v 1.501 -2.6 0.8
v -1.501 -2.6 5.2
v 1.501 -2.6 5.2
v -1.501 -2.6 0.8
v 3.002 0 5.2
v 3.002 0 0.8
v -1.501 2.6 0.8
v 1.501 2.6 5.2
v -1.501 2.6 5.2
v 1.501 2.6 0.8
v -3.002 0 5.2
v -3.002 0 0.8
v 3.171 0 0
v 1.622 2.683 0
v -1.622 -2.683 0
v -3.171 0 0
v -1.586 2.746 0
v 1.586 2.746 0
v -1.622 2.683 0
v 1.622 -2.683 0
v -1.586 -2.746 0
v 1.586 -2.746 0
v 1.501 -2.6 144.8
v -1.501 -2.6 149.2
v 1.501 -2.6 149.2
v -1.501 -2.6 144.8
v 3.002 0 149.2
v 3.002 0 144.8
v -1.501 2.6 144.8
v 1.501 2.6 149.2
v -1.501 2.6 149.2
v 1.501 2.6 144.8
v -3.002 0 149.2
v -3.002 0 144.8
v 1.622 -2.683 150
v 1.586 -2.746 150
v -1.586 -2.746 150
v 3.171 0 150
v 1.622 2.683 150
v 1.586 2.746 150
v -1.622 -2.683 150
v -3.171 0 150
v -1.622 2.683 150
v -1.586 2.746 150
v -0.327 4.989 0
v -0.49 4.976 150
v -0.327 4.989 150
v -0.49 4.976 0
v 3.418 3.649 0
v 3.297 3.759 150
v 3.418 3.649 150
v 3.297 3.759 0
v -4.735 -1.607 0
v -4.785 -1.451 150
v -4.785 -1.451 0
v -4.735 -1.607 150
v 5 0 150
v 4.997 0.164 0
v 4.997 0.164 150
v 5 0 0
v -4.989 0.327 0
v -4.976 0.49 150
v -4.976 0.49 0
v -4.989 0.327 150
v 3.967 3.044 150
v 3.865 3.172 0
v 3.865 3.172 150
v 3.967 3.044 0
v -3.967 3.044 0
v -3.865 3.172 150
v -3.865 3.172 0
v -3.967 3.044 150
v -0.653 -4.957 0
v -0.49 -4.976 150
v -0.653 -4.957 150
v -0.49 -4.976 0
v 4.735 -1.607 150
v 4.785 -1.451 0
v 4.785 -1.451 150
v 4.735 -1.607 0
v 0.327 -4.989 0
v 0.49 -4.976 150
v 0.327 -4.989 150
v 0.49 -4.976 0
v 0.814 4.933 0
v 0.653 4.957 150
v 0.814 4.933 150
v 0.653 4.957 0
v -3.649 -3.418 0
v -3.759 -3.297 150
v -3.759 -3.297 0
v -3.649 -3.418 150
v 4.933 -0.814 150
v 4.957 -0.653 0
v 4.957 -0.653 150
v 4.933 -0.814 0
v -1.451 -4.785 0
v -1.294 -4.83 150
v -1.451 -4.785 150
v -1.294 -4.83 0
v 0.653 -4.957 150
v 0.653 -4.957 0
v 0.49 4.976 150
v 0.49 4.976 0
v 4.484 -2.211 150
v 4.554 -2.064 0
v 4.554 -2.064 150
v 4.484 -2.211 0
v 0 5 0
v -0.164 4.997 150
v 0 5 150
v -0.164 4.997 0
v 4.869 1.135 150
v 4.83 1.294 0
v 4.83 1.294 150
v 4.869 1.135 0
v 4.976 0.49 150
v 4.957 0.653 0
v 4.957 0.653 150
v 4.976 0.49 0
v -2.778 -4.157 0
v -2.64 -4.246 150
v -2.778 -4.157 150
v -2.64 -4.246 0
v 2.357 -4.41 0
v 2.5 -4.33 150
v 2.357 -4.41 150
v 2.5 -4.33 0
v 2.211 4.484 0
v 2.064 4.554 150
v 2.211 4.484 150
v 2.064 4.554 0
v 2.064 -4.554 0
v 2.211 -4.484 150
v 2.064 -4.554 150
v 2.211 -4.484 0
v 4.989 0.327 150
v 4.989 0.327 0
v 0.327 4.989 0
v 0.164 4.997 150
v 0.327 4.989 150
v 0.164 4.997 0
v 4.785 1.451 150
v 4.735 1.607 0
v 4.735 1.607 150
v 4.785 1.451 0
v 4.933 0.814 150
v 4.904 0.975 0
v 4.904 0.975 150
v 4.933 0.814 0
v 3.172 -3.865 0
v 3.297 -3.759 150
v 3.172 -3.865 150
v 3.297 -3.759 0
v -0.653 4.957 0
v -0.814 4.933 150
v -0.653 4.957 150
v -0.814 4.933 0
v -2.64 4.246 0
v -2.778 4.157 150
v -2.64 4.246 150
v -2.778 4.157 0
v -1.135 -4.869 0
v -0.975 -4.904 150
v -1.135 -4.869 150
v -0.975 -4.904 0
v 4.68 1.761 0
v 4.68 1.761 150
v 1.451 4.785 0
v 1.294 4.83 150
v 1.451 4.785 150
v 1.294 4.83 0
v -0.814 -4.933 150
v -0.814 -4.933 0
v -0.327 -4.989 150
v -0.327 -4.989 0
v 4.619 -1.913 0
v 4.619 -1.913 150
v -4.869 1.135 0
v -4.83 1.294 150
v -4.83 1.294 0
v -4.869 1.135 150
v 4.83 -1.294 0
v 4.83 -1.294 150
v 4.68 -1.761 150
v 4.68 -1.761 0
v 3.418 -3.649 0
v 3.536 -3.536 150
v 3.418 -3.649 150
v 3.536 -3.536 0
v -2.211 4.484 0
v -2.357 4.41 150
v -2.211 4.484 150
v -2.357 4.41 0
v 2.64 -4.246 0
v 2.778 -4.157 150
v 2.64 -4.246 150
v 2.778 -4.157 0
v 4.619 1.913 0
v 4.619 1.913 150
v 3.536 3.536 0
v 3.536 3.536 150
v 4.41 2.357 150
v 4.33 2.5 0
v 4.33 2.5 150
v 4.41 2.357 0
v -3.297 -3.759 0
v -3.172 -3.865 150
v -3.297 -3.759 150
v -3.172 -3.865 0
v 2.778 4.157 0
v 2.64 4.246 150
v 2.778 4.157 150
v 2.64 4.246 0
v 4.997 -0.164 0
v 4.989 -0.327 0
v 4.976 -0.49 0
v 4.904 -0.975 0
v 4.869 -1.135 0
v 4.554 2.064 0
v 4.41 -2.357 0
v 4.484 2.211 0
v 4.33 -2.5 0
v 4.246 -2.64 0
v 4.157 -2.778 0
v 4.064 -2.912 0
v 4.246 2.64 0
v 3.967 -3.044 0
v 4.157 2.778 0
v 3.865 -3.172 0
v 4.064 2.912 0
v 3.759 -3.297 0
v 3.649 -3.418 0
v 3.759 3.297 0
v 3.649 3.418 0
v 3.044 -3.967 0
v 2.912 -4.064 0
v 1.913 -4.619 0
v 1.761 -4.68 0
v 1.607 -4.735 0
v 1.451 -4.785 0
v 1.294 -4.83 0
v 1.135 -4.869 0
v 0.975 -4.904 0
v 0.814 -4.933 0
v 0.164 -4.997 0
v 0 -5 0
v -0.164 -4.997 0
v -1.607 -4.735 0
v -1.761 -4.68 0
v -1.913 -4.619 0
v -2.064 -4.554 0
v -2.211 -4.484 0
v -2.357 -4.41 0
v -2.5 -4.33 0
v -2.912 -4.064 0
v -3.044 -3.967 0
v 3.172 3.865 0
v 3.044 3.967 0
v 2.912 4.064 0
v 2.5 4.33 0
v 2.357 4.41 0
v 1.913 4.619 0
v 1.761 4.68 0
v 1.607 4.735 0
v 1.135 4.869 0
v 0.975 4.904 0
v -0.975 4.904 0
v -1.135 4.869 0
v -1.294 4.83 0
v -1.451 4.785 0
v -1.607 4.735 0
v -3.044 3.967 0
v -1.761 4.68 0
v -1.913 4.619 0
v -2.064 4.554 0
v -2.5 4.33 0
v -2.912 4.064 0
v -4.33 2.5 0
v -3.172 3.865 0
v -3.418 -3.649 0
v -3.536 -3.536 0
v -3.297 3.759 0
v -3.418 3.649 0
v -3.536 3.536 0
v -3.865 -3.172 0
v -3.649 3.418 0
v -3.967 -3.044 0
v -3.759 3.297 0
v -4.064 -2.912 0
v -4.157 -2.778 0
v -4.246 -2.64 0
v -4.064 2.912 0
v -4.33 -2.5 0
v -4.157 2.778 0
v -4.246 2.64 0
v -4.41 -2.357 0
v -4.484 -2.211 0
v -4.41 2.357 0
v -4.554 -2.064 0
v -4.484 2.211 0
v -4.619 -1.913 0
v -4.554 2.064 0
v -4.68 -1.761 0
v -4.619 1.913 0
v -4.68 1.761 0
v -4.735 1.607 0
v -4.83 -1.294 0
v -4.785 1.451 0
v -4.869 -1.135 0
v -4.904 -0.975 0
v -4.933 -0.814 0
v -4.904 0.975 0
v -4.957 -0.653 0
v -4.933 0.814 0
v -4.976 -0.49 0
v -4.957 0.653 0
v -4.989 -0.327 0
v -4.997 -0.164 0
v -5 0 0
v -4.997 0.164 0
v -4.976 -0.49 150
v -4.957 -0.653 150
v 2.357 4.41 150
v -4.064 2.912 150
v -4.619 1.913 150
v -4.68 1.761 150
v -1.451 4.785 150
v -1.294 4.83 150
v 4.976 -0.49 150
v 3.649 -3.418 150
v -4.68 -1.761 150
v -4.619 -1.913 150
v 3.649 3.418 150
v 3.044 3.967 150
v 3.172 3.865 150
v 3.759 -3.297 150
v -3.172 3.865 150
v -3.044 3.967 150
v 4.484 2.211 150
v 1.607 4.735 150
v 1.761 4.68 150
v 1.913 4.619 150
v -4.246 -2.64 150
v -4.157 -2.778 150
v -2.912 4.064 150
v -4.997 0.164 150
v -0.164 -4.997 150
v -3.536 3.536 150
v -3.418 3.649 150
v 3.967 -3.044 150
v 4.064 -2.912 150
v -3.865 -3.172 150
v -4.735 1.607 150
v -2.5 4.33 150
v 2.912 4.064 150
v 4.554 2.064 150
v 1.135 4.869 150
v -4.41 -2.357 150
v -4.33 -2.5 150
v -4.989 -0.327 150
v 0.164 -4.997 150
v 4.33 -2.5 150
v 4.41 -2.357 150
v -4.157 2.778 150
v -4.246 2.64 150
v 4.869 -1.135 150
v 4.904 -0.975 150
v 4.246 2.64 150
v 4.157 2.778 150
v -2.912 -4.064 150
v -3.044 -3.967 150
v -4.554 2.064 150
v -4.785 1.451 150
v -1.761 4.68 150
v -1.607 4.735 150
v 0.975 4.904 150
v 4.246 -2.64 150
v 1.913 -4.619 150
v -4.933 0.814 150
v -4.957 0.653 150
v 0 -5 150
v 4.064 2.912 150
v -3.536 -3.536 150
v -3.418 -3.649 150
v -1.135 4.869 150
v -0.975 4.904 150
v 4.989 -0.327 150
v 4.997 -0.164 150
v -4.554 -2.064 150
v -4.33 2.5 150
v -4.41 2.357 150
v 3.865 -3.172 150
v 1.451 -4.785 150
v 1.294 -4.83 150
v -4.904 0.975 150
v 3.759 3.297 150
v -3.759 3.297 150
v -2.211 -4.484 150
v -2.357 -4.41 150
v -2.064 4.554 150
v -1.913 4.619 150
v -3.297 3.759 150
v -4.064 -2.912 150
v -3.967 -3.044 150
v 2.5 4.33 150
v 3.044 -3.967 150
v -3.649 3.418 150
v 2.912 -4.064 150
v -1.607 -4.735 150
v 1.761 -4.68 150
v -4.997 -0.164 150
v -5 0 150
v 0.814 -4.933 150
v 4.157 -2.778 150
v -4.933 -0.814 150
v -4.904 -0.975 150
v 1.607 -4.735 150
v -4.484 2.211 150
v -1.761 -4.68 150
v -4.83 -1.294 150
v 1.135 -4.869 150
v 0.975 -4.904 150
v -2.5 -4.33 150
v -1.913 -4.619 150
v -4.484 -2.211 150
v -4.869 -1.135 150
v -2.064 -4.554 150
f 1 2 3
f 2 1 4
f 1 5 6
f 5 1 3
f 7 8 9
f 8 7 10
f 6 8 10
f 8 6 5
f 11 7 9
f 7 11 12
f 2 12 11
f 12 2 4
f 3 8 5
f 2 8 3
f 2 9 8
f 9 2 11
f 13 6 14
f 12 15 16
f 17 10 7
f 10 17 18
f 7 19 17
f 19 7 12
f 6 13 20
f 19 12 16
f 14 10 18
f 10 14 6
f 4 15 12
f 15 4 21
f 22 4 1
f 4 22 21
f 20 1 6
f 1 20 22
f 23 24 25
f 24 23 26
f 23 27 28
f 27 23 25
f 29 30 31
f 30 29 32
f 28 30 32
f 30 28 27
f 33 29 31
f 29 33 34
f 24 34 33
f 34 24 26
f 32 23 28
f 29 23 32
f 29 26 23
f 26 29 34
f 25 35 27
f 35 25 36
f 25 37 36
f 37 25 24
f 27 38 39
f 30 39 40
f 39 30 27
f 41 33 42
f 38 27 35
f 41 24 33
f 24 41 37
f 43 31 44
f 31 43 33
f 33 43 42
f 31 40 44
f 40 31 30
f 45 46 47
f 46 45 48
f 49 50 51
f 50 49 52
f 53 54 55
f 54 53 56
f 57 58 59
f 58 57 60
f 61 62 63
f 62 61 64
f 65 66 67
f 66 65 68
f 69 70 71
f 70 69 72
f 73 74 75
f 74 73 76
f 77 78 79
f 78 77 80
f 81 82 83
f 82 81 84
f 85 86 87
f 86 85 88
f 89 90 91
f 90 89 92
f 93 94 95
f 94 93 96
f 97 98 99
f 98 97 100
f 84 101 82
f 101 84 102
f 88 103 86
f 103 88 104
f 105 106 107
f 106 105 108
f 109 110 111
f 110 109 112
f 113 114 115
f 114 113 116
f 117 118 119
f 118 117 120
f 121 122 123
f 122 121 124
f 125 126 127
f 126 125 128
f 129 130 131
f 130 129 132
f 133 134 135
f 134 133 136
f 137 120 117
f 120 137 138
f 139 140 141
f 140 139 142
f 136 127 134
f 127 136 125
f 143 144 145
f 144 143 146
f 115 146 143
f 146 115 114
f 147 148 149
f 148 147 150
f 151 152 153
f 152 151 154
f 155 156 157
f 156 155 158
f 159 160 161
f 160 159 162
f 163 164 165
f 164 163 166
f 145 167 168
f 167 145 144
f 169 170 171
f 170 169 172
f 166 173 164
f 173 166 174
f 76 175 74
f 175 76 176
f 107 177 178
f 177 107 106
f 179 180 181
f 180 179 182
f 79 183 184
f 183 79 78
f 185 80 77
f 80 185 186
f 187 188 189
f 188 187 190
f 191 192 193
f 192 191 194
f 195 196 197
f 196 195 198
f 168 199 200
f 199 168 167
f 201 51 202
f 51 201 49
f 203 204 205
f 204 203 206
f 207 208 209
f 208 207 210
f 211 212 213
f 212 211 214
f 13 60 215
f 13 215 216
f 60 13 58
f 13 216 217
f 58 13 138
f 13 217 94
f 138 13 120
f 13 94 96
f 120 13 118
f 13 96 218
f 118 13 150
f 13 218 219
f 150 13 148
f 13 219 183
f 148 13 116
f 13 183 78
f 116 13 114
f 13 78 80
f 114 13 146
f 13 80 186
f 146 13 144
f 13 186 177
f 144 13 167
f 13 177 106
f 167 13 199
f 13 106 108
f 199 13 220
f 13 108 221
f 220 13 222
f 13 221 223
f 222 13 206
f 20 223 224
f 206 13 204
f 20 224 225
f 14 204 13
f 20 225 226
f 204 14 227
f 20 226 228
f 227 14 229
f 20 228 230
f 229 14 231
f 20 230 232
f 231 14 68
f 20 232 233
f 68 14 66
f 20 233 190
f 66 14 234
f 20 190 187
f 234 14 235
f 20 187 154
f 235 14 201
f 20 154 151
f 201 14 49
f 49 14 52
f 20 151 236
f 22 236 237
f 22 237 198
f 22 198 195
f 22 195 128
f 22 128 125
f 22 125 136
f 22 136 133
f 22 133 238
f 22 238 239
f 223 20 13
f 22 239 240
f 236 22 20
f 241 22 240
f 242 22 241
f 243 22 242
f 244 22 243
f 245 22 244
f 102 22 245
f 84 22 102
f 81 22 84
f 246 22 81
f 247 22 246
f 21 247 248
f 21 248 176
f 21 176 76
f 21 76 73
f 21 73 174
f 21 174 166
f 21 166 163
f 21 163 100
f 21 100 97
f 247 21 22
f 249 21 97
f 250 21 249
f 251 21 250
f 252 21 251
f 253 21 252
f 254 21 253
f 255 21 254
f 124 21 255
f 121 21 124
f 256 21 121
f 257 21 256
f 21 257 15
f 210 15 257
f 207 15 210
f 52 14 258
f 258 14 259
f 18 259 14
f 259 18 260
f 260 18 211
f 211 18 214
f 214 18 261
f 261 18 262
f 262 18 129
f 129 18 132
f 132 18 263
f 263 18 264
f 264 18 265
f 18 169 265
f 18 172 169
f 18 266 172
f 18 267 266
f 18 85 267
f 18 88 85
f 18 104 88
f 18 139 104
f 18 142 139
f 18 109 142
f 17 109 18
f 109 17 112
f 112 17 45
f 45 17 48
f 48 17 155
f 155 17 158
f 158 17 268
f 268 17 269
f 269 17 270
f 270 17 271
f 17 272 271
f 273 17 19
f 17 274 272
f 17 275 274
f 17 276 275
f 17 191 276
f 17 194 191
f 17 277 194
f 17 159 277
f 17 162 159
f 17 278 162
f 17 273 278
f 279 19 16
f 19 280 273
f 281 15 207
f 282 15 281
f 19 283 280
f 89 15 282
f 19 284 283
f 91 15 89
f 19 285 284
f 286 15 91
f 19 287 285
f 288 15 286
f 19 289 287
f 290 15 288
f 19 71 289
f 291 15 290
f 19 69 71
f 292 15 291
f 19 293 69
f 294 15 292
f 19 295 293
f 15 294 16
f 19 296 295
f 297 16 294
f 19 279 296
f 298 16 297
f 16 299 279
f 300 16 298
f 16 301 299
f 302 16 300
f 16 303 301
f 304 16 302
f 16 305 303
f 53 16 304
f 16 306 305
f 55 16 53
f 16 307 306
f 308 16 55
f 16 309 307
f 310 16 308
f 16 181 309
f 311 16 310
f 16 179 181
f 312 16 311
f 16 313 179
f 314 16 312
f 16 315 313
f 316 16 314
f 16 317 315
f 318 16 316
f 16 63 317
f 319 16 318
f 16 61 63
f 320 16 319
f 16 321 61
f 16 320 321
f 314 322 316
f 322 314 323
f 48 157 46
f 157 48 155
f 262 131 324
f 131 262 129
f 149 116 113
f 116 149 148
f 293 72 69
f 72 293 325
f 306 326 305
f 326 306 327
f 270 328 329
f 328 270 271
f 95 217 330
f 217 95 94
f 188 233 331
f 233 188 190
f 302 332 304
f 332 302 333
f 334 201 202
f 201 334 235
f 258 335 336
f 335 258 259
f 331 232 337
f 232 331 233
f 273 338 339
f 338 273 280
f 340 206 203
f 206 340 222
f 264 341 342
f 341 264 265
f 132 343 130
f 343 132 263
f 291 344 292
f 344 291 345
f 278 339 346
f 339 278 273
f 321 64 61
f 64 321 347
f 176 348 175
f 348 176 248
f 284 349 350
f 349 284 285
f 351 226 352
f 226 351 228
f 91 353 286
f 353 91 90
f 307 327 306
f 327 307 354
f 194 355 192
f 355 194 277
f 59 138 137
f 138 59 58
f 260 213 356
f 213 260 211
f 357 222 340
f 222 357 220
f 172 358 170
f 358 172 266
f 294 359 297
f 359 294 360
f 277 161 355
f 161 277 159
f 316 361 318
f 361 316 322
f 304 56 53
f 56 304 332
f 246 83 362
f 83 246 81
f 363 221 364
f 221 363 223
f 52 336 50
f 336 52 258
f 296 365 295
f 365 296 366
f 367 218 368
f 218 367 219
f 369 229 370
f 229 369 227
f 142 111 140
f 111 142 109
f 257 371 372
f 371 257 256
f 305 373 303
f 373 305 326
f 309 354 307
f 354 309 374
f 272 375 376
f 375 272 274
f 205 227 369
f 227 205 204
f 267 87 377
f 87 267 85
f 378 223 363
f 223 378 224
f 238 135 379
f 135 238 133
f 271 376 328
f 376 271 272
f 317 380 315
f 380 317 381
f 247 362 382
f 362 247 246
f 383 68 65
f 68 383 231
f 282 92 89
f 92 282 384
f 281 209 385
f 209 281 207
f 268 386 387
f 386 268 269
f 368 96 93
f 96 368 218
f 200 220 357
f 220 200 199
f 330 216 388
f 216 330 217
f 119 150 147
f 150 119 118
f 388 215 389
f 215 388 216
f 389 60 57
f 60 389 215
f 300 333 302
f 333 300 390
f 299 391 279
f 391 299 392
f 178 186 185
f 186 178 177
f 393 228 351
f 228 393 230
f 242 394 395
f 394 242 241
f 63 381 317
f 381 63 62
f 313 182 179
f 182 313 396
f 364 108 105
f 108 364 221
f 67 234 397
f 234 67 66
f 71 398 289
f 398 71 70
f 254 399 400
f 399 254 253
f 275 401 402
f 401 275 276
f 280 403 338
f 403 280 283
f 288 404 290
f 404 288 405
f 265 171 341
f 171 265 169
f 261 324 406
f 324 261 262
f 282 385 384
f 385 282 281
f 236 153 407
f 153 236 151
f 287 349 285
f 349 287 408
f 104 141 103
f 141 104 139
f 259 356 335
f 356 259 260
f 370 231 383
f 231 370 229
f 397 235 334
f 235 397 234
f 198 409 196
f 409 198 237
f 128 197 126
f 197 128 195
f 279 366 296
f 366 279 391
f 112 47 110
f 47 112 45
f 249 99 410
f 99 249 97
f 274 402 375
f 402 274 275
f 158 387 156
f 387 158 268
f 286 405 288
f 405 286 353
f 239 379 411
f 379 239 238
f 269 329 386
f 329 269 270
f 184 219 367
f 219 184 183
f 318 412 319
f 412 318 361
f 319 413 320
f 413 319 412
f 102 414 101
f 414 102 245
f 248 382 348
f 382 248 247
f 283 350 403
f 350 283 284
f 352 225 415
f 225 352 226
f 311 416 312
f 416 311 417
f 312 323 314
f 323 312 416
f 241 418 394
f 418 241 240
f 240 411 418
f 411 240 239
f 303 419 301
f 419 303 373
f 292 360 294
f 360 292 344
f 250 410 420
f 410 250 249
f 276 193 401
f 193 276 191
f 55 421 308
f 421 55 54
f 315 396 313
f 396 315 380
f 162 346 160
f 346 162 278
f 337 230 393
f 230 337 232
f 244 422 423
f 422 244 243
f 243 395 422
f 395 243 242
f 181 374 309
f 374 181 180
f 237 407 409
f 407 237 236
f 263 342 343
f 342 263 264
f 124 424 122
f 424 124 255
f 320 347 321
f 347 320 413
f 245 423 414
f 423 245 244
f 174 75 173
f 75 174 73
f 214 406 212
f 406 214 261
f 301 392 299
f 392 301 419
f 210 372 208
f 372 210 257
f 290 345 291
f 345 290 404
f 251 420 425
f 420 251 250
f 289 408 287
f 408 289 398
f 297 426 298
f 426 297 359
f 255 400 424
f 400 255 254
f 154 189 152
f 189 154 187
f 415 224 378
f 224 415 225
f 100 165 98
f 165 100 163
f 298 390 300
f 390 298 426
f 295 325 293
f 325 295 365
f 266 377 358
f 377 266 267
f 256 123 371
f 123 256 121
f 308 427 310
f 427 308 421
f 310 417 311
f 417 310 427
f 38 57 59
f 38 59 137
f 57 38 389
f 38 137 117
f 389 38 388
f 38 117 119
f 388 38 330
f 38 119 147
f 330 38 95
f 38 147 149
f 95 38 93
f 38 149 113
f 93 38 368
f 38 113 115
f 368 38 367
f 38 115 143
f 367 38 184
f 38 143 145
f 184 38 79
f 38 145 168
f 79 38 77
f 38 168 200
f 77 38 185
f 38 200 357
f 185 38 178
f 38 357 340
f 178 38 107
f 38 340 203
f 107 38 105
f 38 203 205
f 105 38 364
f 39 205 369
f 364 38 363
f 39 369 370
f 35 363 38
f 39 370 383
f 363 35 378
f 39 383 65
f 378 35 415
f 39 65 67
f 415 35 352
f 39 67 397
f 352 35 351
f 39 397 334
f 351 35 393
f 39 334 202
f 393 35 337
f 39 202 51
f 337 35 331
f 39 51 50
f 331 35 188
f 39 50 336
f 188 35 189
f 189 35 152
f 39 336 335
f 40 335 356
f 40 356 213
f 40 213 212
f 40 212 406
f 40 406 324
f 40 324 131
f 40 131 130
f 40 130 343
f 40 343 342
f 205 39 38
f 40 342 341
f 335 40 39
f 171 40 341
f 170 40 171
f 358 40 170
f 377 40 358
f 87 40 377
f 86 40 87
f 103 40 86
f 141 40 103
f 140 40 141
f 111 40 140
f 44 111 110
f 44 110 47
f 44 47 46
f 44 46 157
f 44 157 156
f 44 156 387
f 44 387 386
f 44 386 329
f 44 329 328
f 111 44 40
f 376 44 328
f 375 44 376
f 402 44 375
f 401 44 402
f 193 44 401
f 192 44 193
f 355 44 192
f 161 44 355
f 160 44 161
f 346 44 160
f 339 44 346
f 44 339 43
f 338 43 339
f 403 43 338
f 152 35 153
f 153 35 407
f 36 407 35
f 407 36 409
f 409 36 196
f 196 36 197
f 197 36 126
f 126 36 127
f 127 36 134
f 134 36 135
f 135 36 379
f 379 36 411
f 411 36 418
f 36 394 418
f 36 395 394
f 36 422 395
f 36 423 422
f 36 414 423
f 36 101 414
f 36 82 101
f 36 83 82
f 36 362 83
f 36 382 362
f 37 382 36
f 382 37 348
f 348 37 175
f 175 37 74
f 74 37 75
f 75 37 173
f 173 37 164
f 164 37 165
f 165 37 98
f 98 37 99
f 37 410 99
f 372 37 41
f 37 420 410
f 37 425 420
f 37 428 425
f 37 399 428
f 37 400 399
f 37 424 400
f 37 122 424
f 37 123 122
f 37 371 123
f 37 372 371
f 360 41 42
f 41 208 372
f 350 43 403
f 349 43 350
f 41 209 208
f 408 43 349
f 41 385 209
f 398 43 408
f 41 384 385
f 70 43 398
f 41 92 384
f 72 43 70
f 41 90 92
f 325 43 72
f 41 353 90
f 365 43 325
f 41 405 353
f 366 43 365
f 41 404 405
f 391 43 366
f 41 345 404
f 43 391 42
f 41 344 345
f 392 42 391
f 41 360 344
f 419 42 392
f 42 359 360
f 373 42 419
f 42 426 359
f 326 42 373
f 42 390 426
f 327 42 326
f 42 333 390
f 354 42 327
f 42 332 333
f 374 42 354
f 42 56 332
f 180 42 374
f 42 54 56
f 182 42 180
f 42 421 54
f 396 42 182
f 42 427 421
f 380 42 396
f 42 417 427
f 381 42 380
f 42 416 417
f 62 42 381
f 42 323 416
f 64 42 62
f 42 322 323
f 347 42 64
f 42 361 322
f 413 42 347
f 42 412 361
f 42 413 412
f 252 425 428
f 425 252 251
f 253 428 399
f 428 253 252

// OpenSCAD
// Smooth replacement main shaft for the imported golden_cudgel model.
// The original main.stl was a 9 mm diameter shaft with engraved characters.
// This version removes the character cuts, increases the diameter to 10 mm,
// and keeps the original hex sockets so the already-printed side pieces fit.

$fn = 192;

main_length = 150;        // mm
main_diameter = 10;       // mm

// The side-piece hex peg measures about 5.0 mm across flats.
side_hex_across_flats = 5.0;
socket_clearance = 0.2;   // mm across flats, i.e. about 0.1 mm per side
socket_depth = 5.2;       // mm, slightly deeper than the original 5 mm socket
lead_in_depth = 0.8;      // mm chamfer to help the side peg start cleanly
lead_in_extra = 0.3;      // mm extra across flats at the socket mouth

base_diameter = 34;       // mm sacrificial base diameter for the removable variant
base_thickness = 0.28;    // mm, roughly a first-layer sacrificial brim
base_overlap = 0.25;      // mm radial overlap with the shaft so it prints attached
eps = 0.02;

function hex_radius(across_flats) = across_flats / sqrt(3);

module hex_prism(h, across_flats) {
    cylinder(h = h, r = hex_radius(across_flats), $fn = 6, center = false);
}

module socket_cutouts() {
    socket_af = side_hex_across_flats + socket_clearance;
    lead_af = socket_af + lead_in_extra;

    // Bottom socket.
    translate([0, 0, -eps])
        hex_prism(socket_depth + eps, socket_af);
    translate([0, 0, -eps])
        cylinder(
            h = lead_in_depth + eps,
            r1 = hex_radius(lead_af),
            r2 = hex_radius(socket_af),
            $fn = 6,
            center = false
        );

    // Top socket.
    translate([0, 0, main_length - socket_depth])
        hex_prism(socket_depth + eps, socket_af);
    translate([0, 0, main_length - lead_in_depth])
        cylinder(
            h = lead_in_depth + eps,
            r1 = hex_radius(socket_af),
            r2 = hex_radius(lead_af),
            $fn = 6,
            center = false
        );
}

module removable_base() {
    difference() {
        cylinder(h = base_thickness, d = base_diameter, center = false);
        translate([0, 0, -eps])
            cylinder(
                h = base_thickness + 2 * eps,
                d = main_diameter - 2 * base_overlap,
                center = false
            );
    }
}

module main_shaft(with_base = false) {
    difference() {
        union() {
            cylinder(h = main_length, d = main_diameter, center = false);
            if (with_base)
                removable_base();
        }
        socket_cutouts();
    }
}

main_shaft();
